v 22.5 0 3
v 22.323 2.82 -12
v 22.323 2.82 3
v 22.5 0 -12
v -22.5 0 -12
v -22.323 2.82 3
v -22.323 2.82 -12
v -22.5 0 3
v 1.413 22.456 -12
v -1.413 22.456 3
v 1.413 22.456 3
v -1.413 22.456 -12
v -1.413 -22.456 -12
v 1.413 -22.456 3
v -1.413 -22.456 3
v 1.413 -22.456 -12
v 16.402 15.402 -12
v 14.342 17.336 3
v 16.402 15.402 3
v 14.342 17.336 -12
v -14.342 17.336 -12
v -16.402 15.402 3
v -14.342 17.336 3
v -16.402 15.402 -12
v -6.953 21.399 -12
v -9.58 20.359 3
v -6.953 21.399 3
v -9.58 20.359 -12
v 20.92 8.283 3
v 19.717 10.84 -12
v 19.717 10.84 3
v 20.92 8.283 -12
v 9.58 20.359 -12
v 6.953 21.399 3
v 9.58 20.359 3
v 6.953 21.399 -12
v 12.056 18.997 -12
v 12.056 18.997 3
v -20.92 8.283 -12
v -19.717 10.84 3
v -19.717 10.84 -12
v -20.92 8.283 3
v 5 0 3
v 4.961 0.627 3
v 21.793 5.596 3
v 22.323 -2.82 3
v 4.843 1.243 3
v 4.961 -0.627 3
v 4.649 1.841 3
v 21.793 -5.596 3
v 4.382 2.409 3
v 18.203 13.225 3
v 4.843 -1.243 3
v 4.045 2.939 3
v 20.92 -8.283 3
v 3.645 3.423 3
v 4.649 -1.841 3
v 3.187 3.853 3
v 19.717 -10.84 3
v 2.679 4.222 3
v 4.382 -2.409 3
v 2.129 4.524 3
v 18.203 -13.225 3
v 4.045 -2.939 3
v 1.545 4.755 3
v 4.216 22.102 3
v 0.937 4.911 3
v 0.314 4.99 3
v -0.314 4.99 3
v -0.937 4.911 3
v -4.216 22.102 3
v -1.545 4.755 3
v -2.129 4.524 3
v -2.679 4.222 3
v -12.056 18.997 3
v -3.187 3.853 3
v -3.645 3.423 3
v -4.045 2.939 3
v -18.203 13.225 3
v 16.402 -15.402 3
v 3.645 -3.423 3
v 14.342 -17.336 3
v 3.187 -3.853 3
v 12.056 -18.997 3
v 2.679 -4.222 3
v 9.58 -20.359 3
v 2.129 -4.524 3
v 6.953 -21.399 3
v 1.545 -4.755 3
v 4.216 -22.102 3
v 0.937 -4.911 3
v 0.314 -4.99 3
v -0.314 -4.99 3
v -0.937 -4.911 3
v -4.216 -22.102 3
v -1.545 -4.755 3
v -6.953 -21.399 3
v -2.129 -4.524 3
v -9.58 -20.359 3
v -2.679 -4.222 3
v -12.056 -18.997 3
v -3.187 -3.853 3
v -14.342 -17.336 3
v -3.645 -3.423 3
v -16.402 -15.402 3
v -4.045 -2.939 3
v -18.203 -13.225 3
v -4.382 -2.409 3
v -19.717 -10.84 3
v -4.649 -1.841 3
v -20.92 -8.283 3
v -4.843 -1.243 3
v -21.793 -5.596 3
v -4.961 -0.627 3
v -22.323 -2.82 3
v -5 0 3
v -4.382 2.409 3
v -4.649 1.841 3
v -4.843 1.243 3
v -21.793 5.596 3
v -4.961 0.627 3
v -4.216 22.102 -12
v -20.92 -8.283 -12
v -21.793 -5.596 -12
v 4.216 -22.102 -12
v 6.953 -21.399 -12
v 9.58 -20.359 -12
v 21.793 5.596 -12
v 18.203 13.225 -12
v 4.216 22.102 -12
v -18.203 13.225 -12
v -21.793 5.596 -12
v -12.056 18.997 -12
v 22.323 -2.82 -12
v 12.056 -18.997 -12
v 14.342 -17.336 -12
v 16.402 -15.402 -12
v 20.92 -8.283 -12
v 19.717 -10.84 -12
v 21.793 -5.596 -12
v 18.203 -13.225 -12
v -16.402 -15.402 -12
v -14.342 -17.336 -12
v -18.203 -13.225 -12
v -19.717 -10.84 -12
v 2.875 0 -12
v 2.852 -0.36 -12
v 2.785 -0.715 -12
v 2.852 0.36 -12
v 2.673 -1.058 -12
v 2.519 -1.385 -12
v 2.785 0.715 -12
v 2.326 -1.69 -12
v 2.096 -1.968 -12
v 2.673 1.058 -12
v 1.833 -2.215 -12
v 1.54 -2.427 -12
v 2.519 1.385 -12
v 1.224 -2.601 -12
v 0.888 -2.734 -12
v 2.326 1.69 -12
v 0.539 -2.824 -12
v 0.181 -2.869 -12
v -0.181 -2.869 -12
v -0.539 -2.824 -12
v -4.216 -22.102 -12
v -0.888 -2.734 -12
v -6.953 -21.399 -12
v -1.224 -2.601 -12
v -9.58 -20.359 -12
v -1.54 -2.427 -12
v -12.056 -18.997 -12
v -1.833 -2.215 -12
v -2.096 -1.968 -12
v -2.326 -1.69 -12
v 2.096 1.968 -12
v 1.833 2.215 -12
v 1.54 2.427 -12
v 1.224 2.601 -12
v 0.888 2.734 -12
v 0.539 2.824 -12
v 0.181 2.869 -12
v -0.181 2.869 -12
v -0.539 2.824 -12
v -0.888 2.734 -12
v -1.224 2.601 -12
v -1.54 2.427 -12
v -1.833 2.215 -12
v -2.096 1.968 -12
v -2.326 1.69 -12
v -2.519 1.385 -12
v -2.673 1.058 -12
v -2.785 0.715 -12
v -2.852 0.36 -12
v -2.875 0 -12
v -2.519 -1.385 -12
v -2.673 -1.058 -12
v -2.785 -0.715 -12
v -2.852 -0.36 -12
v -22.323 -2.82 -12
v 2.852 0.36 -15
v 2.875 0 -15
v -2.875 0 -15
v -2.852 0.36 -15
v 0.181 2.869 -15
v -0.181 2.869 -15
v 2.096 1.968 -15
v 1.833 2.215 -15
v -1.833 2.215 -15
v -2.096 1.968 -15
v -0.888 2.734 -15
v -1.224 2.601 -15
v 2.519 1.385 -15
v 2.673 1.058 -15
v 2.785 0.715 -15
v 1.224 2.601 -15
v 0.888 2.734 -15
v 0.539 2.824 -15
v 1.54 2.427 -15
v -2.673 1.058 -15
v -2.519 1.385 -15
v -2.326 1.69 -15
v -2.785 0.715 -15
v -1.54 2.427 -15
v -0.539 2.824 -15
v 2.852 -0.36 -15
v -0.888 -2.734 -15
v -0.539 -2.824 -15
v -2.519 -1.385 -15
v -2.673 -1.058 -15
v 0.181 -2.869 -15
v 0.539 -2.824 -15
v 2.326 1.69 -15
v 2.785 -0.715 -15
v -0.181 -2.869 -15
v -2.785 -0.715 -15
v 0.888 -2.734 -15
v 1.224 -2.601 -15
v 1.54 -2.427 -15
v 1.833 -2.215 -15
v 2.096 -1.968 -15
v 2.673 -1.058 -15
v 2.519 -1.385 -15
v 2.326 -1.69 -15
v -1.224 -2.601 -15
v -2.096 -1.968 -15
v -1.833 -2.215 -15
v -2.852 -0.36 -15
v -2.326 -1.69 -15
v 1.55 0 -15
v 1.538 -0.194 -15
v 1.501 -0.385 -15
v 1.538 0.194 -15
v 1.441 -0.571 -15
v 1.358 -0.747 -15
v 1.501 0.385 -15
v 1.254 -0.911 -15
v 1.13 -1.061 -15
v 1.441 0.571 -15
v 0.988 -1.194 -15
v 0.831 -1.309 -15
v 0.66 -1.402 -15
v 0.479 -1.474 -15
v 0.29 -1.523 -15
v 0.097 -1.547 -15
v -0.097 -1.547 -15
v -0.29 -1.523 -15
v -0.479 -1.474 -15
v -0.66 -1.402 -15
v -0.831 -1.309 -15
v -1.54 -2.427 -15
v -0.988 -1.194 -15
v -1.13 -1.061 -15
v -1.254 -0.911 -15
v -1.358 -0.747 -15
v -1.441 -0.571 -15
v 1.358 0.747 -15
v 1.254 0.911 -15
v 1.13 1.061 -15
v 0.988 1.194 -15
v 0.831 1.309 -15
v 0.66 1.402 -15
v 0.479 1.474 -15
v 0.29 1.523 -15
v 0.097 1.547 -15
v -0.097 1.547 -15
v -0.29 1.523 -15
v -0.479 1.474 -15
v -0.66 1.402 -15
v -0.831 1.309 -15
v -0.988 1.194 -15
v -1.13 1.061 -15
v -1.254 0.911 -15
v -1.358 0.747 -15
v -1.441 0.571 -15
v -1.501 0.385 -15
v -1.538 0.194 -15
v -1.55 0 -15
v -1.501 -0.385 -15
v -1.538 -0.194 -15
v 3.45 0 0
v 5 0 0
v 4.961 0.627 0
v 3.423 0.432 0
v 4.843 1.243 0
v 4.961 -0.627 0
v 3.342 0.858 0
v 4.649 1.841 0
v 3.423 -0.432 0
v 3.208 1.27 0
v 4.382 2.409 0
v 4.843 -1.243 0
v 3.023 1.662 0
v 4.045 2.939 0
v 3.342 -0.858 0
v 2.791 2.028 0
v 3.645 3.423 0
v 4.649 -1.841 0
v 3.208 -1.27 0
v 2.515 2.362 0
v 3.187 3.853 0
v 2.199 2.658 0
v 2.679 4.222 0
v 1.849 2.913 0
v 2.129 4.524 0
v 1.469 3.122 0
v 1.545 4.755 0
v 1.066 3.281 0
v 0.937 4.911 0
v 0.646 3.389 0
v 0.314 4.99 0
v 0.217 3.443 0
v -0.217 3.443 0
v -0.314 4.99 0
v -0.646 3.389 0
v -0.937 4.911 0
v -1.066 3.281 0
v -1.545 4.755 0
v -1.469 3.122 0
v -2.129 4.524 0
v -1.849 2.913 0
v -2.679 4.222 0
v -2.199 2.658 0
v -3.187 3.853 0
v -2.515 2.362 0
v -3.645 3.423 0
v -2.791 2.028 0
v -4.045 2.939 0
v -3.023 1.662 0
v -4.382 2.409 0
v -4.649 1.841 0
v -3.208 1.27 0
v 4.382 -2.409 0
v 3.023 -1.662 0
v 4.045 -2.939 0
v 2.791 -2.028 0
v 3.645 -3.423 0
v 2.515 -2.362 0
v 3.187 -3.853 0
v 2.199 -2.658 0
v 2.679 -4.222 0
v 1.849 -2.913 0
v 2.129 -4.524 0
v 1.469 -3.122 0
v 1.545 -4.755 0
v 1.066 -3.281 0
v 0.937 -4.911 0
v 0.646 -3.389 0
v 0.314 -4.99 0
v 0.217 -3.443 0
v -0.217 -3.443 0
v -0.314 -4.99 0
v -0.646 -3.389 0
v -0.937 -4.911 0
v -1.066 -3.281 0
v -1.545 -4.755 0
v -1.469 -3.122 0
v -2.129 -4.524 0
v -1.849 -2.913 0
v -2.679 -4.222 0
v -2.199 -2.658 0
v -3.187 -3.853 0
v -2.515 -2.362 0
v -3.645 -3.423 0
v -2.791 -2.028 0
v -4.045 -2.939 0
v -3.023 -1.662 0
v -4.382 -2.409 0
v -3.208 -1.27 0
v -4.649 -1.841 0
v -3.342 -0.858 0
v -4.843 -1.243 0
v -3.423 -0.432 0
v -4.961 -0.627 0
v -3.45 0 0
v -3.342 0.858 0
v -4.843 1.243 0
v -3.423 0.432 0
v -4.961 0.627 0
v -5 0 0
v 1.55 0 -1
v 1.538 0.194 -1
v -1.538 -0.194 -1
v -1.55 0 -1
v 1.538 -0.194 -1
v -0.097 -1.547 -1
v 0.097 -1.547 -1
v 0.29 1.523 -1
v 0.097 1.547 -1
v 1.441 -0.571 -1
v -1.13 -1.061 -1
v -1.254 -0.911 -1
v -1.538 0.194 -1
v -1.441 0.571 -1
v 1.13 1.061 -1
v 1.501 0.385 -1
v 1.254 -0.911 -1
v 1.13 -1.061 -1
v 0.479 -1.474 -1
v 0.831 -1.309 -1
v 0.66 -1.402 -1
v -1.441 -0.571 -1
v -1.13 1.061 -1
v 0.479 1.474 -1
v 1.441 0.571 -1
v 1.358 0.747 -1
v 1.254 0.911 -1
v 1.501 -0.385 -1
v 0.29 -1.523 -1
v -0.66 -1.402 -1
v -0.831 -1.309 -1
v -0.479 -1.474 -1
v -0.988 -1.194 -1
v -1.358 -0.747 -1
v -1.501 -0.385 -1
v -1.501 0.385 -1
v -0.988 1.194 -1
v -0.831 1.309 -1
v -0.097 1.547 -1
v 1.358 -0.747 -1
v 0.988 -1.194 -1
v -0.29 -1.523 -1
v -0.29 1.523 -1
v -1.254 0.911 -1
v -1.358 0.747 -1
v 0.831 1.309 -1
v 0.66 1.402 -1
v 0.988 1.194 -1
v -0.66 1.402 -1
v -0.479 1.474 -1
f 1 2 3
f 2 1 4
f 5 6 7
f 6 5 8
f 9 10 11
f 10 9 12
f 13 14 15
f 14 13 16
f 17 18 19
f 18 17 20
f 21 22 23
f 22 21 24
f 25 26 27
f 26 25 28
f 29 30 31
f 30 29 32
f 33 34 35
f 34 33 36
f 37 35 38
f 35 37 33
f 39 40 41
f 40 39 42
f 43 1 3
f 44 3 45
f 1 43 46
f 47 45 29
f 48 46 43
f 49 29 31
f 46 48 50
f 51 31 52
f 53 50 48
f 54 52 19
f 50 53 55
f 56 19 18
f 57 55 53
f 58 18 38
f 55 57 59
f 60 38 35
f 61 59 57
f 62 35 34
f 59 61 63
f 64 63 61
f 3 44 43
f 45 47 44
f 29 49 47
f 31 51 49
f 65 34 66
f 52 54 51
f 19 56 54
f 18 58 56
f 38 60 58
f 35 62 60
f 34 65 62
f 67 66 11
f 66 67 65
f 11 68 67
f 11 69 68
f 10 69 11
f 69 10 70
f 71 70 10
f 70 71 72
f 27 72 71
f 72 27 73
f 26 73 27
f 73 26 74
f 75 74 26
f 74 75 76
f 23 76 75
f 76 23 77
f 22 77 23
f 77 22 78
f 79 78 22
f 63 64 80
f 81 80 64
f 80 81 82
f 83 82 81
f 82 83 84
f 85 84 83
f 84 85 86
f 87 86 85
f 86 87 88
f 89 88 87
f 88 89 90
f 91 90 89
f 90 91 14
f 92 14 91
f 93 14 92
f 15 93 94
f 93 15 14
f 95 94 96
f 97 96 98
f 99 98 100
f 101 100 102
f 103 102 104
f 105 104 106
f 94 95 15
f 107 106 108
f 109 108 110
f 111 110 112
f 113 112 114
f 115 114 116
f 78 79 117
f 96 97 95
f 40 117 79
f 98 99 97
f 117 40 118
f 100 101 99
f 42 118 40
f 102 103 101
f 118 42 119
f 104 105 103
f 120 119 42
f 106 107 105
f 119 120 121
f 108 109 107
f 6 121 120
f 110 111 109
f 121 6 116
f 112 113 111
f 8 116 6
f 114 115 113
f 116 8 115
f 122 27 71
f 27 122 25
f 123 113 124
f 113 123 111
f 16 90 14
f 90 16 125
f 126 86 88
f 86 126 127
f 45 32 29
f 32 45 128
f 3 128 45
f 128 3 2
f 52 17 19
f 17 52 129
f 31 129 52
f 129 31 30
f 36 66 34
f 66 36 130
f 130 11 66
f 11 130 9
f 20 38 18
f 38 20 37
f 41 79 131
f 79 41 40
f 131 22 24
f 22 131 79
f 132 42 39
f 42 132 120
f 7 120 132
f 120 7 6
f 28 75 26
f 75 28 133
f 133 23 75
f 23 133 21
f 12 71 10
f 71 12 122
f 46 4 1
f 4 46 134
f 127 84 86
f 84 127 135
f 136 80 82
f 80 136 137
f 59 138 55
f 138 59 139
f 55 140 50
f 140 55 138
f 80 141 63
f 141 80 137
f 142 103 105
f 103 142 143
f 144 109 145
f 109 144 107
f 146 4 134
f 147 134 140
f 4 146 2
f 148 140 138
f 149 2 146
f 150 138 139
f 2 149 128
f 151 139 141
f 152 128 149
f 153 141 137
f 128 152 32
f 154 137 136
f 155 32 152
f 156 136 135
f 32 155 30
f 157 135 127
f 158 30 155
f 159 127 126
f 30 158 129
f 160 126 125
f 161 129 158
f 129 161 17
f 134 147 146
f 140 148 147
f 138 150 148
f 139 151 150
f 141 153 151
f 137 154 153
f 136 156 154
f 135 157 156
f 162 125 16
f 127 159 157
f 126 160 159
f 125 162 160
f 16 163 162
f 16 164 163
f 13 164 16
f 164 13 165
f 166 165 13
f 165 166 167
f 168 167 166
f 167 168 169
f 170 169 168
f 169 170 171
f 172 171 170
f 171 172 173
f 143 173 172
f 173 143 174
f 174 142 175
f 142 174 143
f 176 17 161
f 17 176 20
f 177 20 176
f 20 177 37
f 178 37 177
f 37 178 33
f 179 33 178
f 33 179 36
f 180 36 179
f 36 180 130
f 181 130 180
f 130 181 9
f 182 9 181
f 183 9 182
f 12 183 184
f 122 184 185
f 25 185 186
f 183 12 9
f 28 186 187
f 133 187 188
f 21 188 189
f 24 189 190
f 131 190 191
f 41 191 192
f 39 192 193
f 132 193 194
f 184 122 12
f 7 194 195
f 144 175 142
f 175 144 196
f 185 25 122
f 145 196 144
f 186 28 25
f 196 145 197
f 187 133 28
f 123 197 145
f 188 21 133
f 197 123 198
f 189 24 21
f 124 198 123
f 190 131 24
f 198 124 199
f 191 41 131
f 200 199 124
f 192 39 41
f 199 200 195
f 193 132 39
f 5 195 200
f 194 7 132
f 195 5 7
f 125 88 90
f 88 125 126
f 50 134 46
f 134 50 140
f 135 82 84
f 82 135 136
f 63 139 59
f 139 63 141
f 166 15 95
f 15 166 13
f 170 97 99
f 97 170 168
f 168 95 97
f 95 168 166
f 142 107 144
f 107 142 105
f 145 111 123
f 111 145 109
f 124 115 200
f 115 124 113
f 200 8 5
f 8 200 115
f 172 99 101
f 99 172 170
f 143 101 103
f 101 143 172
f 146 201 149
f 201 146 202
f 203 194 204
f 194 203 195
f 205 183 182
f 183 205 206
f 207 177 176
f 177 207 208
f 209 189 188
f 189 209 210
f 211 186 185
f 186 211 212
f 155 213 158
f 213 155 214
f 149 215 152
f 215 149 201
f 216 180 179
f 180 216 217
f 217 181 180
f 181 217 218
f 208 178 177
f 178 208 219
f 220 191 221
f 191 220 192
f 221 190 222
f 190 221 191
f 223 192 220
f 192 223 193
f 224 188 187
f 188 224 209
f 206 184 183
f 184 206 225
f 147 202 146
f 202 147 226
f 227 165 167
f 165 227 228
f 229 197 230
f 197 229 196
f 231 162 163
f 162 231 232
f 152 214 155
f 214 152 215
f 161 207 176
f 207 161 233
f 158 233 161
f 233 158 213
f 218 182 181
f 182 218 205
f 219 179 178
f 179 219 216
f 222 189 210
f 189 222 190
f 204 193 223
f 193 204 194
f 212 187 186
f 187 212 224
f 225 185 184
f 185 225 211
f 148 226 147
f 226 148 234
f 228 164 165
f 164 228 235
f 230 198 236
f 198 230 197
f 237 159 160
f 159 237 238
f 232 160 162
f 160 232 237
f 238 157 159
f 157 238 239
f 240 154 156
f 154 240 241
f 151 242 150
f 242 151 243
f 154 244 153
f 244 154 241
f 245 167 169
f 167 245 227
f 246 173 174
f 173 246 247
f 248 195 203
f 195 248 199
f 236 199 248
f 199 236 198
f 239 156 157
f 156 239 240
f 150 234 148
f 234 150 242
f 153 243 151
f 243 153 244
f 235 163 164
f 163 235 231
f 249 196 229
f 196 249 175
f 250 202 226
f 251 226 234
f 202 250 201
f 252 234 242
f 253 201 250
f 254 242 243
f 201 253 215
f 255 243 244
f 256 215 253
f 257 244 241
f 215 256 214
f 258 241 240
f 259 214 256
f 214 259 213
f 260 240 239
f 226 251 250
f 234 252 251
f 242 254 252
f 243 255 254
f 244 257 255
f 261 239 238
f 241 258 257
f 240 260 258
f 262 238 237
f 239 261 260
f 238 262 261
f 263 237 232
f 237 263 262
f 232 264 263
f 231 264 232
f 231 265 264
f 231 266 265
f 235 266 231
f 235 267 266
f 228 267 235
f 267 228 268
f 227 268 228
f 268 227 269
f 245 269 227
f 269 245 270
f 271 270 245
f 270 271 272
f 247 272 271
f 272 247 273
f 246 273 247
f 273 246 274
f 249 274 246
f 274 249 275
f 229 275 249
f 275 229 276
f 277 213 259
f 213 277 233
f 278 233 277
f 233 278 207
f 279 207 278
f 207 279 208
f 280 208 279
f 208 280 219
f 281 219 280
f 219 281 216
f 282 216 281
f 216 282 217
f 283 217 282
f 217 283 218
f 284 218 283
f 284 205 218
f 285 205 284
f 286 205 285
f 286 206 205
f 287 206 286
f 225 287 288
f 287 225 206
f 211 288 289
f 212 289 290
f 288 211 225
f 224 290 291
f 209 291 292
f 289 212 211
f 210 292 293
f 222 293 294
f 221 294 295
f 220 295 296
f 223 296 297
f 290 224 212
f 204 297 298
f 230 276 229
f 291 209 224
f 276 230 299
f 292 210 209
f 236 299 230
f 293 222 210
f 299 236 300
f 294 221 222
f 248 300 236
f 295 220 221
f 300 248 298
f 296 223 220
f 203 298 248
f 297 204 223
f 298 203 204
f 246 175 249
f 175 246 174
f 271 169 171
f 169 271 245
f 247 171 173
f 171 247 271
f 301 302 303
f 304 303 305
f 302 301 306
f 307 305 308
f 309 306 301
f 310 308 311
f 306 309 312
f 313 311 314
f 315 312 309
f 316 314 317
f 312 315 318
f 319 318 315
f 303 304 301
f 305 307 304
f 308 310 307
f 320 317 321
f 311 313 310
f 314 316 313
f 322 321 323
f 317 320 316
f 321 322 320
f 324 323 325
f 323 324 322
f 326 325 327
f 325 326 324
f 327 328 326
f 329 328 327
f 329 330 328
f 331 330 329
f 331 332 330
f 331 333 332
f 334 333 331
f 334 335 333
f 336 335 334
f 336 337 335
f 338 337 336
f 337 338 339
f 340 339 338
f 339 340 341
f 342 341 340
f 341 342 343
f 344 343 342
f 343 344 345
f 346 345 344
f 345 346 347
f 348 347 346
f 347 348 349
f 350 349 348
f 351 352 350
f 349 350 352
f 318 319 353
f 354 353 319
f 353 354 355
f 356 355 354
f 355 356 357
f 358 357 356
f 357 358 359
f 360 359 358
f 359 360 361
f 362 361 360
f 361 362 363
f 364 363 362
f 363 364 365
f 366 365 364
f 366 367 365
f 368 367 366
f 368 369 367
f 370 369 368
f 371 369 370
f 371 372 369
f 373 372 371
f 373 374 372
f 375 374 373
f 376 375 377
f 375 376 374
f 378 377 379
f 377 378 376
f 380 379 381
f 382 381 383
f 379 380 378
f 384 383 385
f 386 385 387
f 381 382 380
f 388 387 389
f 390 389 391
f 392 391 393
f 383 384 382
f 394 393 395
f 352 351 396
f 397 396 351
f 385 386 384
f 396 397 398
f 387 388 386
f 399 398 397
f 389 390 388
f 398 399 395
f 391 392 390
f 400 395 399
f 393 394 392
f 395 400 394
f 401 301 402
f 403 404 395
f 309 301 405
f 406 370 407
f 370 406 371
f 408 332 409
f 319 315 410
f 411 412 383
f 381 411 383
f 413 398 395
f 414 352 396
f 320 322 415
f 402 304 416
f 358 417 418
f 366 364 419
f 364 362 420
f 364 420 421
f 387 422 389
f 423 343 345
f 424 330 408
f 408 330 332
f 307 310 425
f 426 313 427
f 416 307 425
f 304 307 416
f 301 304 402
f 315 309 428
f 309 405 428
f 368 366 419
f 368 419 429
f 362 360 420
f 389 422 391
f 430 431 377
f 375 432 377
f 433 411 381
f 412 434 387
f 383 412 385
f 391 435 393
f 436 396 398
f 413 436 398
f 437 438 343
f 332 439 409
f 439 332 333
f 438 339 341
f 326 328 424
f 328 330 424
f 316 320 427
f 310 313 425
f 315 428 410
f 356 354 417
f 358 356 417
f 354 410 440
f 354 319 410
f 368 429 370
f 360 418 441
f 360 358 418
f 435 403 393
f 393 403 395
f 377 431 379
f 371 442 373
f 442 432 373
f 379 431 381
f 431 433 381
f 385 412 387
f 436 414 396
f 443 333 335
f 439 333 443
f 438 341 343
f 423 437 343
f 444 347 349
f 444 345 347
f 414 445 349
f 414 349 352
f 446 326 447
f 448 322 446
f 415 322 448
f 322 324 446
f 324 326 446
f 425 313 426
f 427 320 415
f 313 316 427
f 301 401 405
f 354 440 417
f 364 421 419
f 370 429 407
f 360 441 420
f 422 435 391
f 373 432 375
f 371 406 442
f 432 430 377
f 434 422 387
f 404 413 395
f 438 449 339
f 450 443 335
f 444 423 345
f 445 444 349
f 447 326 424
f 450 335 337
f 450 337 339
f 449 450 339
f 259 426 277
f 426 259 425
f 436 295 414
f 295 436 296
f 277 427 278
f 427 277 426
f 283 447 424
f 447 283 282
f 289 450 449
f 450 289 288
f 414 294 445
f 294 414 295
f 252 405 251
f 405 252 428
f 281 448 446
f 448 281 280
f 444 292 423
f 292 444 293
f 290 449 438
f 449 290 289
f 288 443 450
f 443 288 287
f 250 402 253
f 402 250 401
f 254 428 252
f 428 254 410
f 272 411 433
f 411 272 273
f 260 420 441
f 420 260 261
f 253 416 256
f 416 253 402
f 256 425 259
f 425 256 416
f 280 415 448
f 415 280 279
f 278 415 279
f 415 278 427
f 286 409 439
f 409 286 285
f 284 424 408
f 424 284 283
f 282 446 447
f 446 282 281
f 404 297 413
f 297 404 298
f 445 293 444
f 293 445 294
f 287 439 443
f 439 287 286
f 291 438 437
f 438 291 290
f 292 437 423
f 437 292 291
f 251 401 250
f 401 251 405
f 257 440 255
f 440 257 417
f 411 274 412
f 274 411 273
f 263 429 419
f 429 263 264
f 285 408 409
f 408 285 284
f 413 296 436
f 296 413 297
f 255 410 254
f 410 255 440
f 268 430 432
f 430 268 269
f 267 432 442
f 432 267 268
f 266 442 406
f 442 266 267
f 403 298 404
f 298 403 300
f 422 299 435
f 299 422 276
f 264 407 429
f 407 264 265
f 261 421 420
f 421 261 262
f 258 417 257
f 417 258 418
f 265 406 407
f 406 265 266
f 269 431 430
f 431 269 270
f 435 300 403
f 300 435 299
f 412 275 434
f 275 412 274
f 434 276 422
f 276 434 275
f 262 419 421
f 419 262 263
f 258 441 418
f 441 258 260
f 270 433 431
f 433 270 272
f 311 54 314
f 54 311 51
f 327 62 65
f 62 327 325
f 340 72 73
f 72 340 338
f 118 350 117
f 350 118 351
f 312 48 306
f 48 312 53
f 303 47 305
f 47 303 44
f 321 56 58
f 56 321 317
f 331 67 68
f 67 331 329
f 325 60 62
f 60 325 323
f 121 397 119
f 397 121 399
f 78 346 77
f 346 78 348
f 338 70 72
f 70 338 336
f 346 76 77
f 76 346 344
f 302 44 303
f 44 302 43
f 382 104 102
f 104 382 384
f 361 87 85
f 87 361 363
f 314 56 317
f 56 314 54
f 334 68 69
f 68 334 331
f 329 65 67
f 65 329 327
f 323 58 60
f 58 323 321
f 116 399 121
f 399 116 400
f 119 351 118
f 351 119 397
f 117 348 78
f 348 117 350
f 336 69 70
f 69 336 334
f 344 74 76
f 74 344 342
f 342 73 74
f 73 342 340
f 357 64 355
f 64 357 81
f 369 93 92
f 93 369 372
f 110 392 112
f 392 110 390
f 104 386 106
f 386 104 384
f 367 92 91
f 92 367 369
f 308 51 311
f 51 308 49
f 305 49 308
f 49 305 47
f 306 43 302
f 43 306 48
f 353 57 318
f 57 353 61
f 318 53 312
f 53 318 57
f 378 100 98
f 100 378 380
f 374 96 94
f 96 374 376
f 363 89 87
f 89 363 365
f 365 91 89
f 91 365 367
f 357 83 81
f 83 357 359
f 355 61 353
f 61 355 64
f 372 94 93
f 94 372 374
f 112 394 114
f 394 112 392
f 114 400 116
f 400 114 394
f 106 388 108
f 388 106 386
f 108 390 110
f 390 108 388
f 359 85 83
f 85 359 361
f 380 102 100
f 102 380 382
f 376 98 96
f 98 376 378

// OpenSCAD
$fn = 50;

difference() {
	union() {
		translate(v = [0, 0, -12.0]) {
			cylinder(h = 15, r = 22.5);
		}
		#translate(v = [0, 0, -15.0]) {
			cylinder(h = 15, r = 2.875);
		}
	}
	union() {
		translate(v = [0, 0, 0]) {
			rotate(a = [0, 0, 0]) {
				difference() {
					union() {
						translate(v = [0, 0, -15.0]) {
							cylinder(h = 15, r = 1.25);
						}
						translate(v = [0, 0, -1.0]) {
							cylinder(h = 1.0, r1 = 1.55, r2 = 3.45);
						}
						translate(v = [0, 0, -15.0]) {
							cylinder(h = 15, r = 1.55);
						}
						translate(v = [0, 0, -15.0]) {
							cylinder(h = 15, r = 1.25);
						}
					}
					union();
				}
			}
		}
		#cylinder(h = 3, r = 5.0);
	}
}
